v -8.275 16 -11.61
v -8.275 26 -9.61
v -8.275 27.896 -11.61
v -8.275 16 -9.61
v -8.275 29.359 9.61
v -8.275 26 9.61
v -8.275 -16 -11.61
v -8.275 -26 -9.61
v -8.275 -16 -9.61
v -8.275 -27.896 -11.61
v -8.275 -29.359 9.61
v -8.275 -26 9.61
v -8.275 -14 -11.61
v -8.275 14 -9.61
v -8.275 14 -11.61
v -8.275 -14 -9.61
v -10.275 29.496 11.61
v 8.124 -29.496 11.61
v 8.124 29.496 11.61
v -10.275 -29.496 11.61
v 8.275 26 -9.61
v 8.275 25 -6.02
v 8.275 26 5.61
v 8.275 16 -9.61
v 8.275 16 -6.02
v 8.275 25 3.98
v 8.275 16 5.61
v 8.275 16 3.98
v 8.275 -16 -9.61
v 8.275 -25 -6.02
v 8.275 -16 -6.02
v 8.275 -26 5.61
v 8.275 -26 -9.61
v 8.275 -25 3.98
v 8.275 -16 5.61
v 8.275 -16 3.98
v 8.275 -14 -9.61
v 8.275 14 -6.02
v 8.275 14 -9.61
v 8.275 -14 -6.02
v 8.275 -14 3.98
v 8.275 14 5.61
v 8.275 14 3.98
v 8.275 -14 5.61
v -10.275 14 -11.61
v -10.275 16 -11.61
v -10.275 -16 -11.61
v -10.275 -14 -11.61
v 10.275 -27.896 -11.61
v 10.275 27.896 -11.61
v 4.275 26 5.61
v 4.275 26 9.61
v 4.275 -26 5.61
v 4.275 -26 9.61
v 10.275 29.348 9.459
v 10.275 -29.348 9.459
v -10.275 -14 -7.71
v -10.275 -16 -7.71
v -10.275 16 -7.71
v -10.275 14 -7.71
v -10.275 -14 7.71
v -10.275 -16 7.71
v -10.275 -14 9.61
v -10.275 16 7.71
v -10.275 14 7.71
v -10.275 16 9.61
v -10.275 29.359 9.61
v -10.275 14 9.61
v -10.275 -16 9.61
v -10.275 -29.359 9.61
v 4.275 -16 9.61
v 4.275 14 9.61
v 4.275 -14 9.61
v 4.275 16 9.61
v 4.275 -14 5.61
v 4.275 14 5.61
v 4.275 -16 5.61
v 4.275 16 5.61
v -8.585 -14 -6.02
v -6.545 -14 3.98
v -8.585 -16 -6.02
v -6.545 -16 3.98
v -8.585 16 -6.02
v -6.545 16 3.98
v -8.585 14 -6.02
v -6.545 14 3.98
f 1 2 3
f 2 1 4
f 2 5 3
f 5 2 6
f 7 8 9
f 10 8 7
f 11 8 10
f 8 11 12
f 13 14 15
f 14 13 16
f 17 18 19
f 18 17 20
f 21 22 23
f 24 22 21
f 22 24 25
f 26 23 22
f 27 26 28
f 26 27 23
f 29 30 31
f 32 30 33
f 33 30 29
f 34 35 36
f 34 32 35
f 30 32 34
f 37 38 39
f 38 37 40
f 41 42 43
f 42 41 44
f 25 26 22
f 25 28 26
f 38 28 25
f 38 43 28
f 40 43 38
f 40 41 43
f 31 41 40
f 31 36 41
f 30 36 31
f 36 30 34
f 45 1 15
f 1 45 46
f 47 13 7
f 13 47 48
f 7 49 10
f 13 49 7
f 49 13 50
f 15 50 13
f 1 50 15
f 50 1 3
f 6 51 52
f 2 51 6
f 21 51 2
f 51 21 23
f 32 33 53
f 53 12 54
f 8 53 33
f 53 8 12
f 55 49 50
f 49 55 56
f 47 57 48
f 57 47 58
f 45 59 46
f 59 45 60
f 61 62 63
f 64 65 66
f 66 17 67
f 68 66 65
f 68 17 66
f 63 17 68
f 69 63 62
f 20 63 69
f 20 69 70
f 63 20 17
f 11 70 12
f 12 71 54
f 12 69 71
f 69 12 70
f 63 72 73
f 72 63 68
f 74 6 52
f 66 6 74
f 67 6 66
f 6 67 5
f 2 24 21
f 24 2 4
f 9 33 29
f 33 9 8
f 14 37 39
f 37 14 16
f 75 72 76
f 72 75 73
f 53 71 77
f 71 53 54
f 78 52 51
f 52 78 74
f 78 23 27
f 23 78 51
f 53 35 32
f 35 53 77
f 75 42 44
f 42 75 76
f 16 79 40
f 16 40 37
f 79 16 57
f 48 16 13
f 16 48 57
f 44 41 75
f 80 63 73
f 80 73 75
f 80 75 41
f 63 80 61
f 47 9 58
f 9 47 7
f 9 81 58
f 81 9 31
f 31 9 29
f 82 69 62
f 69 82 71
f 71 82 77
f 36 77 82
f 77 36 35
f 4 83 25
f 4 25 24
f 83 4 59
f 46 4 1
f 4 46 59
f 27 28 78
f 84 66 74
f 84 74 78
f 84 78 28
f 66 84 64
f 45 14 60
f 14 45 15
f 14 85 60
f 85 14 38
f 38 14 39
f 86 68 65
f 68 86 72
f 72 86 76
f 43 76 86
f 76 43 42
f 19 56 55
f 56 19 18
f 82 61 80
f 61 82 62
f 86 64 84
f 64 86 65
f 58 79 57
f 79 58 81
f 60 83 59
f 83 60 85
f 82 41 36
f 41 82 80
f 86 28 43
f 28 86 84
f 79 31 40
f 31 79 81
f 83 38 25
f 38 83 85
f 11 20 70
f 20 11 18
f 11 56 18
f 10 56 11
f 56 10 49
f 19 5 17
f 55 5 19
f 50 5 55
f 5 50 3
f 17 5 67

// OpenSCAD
module cartshell()
{
	translate([0,28,0])
		cube([16.55,4,23.22],center=true);
	translate([0,-28,0])
		cube([16.55,4,23.22],center=true);
	translate([18.55/2,0,0])
		cube([2,60,23.22],center=true);
	translate([0,0,21.22/2])
		cube([20.55,60,2],center=true);
	translate([0,0,-21.22/2])
		cube([16.55,60,2],center=true);
	translate([20.55/2-4,0,23.22/2-4])
		cube([4,60,4],center=true);
	translate([0,-15,0])
		cube([20.55,2,23.22],center=true);
	translate([0,15,0])
		cube([20.55,2,23.22],center=true);
}

module cartcover()
{
	//top is narrower. 58.4
	//cube([20.55,60,23.22], center=true);
	difference()
	{
		cartshell();
		translate([11.05,0,12.22])
			rotate([0,45,0])
				cube([5,61,5],center=true);
		translate([-11.05,0,0])
			rotate([0,45,0])
				cube([12,50,12],center=true);
		translate([-2,0,-1.02])
			cube([20.55,50,10],center=true);
		translate([0,-59.2/2-0.6
		,0])
			rotate([3.942,0,0])
				cube([22,3,25],center=true);
		translate([0,59.2/2+0.6,0])
			rotate([-3.942,0,0])
				cube([22,3,25],center=true);
	}
}
//11.65 to the front edge of the cart connector

//cartshell();
cartcover();
//Hi Atari ST fans. I did this mostly with love and only a little bit to troll.
